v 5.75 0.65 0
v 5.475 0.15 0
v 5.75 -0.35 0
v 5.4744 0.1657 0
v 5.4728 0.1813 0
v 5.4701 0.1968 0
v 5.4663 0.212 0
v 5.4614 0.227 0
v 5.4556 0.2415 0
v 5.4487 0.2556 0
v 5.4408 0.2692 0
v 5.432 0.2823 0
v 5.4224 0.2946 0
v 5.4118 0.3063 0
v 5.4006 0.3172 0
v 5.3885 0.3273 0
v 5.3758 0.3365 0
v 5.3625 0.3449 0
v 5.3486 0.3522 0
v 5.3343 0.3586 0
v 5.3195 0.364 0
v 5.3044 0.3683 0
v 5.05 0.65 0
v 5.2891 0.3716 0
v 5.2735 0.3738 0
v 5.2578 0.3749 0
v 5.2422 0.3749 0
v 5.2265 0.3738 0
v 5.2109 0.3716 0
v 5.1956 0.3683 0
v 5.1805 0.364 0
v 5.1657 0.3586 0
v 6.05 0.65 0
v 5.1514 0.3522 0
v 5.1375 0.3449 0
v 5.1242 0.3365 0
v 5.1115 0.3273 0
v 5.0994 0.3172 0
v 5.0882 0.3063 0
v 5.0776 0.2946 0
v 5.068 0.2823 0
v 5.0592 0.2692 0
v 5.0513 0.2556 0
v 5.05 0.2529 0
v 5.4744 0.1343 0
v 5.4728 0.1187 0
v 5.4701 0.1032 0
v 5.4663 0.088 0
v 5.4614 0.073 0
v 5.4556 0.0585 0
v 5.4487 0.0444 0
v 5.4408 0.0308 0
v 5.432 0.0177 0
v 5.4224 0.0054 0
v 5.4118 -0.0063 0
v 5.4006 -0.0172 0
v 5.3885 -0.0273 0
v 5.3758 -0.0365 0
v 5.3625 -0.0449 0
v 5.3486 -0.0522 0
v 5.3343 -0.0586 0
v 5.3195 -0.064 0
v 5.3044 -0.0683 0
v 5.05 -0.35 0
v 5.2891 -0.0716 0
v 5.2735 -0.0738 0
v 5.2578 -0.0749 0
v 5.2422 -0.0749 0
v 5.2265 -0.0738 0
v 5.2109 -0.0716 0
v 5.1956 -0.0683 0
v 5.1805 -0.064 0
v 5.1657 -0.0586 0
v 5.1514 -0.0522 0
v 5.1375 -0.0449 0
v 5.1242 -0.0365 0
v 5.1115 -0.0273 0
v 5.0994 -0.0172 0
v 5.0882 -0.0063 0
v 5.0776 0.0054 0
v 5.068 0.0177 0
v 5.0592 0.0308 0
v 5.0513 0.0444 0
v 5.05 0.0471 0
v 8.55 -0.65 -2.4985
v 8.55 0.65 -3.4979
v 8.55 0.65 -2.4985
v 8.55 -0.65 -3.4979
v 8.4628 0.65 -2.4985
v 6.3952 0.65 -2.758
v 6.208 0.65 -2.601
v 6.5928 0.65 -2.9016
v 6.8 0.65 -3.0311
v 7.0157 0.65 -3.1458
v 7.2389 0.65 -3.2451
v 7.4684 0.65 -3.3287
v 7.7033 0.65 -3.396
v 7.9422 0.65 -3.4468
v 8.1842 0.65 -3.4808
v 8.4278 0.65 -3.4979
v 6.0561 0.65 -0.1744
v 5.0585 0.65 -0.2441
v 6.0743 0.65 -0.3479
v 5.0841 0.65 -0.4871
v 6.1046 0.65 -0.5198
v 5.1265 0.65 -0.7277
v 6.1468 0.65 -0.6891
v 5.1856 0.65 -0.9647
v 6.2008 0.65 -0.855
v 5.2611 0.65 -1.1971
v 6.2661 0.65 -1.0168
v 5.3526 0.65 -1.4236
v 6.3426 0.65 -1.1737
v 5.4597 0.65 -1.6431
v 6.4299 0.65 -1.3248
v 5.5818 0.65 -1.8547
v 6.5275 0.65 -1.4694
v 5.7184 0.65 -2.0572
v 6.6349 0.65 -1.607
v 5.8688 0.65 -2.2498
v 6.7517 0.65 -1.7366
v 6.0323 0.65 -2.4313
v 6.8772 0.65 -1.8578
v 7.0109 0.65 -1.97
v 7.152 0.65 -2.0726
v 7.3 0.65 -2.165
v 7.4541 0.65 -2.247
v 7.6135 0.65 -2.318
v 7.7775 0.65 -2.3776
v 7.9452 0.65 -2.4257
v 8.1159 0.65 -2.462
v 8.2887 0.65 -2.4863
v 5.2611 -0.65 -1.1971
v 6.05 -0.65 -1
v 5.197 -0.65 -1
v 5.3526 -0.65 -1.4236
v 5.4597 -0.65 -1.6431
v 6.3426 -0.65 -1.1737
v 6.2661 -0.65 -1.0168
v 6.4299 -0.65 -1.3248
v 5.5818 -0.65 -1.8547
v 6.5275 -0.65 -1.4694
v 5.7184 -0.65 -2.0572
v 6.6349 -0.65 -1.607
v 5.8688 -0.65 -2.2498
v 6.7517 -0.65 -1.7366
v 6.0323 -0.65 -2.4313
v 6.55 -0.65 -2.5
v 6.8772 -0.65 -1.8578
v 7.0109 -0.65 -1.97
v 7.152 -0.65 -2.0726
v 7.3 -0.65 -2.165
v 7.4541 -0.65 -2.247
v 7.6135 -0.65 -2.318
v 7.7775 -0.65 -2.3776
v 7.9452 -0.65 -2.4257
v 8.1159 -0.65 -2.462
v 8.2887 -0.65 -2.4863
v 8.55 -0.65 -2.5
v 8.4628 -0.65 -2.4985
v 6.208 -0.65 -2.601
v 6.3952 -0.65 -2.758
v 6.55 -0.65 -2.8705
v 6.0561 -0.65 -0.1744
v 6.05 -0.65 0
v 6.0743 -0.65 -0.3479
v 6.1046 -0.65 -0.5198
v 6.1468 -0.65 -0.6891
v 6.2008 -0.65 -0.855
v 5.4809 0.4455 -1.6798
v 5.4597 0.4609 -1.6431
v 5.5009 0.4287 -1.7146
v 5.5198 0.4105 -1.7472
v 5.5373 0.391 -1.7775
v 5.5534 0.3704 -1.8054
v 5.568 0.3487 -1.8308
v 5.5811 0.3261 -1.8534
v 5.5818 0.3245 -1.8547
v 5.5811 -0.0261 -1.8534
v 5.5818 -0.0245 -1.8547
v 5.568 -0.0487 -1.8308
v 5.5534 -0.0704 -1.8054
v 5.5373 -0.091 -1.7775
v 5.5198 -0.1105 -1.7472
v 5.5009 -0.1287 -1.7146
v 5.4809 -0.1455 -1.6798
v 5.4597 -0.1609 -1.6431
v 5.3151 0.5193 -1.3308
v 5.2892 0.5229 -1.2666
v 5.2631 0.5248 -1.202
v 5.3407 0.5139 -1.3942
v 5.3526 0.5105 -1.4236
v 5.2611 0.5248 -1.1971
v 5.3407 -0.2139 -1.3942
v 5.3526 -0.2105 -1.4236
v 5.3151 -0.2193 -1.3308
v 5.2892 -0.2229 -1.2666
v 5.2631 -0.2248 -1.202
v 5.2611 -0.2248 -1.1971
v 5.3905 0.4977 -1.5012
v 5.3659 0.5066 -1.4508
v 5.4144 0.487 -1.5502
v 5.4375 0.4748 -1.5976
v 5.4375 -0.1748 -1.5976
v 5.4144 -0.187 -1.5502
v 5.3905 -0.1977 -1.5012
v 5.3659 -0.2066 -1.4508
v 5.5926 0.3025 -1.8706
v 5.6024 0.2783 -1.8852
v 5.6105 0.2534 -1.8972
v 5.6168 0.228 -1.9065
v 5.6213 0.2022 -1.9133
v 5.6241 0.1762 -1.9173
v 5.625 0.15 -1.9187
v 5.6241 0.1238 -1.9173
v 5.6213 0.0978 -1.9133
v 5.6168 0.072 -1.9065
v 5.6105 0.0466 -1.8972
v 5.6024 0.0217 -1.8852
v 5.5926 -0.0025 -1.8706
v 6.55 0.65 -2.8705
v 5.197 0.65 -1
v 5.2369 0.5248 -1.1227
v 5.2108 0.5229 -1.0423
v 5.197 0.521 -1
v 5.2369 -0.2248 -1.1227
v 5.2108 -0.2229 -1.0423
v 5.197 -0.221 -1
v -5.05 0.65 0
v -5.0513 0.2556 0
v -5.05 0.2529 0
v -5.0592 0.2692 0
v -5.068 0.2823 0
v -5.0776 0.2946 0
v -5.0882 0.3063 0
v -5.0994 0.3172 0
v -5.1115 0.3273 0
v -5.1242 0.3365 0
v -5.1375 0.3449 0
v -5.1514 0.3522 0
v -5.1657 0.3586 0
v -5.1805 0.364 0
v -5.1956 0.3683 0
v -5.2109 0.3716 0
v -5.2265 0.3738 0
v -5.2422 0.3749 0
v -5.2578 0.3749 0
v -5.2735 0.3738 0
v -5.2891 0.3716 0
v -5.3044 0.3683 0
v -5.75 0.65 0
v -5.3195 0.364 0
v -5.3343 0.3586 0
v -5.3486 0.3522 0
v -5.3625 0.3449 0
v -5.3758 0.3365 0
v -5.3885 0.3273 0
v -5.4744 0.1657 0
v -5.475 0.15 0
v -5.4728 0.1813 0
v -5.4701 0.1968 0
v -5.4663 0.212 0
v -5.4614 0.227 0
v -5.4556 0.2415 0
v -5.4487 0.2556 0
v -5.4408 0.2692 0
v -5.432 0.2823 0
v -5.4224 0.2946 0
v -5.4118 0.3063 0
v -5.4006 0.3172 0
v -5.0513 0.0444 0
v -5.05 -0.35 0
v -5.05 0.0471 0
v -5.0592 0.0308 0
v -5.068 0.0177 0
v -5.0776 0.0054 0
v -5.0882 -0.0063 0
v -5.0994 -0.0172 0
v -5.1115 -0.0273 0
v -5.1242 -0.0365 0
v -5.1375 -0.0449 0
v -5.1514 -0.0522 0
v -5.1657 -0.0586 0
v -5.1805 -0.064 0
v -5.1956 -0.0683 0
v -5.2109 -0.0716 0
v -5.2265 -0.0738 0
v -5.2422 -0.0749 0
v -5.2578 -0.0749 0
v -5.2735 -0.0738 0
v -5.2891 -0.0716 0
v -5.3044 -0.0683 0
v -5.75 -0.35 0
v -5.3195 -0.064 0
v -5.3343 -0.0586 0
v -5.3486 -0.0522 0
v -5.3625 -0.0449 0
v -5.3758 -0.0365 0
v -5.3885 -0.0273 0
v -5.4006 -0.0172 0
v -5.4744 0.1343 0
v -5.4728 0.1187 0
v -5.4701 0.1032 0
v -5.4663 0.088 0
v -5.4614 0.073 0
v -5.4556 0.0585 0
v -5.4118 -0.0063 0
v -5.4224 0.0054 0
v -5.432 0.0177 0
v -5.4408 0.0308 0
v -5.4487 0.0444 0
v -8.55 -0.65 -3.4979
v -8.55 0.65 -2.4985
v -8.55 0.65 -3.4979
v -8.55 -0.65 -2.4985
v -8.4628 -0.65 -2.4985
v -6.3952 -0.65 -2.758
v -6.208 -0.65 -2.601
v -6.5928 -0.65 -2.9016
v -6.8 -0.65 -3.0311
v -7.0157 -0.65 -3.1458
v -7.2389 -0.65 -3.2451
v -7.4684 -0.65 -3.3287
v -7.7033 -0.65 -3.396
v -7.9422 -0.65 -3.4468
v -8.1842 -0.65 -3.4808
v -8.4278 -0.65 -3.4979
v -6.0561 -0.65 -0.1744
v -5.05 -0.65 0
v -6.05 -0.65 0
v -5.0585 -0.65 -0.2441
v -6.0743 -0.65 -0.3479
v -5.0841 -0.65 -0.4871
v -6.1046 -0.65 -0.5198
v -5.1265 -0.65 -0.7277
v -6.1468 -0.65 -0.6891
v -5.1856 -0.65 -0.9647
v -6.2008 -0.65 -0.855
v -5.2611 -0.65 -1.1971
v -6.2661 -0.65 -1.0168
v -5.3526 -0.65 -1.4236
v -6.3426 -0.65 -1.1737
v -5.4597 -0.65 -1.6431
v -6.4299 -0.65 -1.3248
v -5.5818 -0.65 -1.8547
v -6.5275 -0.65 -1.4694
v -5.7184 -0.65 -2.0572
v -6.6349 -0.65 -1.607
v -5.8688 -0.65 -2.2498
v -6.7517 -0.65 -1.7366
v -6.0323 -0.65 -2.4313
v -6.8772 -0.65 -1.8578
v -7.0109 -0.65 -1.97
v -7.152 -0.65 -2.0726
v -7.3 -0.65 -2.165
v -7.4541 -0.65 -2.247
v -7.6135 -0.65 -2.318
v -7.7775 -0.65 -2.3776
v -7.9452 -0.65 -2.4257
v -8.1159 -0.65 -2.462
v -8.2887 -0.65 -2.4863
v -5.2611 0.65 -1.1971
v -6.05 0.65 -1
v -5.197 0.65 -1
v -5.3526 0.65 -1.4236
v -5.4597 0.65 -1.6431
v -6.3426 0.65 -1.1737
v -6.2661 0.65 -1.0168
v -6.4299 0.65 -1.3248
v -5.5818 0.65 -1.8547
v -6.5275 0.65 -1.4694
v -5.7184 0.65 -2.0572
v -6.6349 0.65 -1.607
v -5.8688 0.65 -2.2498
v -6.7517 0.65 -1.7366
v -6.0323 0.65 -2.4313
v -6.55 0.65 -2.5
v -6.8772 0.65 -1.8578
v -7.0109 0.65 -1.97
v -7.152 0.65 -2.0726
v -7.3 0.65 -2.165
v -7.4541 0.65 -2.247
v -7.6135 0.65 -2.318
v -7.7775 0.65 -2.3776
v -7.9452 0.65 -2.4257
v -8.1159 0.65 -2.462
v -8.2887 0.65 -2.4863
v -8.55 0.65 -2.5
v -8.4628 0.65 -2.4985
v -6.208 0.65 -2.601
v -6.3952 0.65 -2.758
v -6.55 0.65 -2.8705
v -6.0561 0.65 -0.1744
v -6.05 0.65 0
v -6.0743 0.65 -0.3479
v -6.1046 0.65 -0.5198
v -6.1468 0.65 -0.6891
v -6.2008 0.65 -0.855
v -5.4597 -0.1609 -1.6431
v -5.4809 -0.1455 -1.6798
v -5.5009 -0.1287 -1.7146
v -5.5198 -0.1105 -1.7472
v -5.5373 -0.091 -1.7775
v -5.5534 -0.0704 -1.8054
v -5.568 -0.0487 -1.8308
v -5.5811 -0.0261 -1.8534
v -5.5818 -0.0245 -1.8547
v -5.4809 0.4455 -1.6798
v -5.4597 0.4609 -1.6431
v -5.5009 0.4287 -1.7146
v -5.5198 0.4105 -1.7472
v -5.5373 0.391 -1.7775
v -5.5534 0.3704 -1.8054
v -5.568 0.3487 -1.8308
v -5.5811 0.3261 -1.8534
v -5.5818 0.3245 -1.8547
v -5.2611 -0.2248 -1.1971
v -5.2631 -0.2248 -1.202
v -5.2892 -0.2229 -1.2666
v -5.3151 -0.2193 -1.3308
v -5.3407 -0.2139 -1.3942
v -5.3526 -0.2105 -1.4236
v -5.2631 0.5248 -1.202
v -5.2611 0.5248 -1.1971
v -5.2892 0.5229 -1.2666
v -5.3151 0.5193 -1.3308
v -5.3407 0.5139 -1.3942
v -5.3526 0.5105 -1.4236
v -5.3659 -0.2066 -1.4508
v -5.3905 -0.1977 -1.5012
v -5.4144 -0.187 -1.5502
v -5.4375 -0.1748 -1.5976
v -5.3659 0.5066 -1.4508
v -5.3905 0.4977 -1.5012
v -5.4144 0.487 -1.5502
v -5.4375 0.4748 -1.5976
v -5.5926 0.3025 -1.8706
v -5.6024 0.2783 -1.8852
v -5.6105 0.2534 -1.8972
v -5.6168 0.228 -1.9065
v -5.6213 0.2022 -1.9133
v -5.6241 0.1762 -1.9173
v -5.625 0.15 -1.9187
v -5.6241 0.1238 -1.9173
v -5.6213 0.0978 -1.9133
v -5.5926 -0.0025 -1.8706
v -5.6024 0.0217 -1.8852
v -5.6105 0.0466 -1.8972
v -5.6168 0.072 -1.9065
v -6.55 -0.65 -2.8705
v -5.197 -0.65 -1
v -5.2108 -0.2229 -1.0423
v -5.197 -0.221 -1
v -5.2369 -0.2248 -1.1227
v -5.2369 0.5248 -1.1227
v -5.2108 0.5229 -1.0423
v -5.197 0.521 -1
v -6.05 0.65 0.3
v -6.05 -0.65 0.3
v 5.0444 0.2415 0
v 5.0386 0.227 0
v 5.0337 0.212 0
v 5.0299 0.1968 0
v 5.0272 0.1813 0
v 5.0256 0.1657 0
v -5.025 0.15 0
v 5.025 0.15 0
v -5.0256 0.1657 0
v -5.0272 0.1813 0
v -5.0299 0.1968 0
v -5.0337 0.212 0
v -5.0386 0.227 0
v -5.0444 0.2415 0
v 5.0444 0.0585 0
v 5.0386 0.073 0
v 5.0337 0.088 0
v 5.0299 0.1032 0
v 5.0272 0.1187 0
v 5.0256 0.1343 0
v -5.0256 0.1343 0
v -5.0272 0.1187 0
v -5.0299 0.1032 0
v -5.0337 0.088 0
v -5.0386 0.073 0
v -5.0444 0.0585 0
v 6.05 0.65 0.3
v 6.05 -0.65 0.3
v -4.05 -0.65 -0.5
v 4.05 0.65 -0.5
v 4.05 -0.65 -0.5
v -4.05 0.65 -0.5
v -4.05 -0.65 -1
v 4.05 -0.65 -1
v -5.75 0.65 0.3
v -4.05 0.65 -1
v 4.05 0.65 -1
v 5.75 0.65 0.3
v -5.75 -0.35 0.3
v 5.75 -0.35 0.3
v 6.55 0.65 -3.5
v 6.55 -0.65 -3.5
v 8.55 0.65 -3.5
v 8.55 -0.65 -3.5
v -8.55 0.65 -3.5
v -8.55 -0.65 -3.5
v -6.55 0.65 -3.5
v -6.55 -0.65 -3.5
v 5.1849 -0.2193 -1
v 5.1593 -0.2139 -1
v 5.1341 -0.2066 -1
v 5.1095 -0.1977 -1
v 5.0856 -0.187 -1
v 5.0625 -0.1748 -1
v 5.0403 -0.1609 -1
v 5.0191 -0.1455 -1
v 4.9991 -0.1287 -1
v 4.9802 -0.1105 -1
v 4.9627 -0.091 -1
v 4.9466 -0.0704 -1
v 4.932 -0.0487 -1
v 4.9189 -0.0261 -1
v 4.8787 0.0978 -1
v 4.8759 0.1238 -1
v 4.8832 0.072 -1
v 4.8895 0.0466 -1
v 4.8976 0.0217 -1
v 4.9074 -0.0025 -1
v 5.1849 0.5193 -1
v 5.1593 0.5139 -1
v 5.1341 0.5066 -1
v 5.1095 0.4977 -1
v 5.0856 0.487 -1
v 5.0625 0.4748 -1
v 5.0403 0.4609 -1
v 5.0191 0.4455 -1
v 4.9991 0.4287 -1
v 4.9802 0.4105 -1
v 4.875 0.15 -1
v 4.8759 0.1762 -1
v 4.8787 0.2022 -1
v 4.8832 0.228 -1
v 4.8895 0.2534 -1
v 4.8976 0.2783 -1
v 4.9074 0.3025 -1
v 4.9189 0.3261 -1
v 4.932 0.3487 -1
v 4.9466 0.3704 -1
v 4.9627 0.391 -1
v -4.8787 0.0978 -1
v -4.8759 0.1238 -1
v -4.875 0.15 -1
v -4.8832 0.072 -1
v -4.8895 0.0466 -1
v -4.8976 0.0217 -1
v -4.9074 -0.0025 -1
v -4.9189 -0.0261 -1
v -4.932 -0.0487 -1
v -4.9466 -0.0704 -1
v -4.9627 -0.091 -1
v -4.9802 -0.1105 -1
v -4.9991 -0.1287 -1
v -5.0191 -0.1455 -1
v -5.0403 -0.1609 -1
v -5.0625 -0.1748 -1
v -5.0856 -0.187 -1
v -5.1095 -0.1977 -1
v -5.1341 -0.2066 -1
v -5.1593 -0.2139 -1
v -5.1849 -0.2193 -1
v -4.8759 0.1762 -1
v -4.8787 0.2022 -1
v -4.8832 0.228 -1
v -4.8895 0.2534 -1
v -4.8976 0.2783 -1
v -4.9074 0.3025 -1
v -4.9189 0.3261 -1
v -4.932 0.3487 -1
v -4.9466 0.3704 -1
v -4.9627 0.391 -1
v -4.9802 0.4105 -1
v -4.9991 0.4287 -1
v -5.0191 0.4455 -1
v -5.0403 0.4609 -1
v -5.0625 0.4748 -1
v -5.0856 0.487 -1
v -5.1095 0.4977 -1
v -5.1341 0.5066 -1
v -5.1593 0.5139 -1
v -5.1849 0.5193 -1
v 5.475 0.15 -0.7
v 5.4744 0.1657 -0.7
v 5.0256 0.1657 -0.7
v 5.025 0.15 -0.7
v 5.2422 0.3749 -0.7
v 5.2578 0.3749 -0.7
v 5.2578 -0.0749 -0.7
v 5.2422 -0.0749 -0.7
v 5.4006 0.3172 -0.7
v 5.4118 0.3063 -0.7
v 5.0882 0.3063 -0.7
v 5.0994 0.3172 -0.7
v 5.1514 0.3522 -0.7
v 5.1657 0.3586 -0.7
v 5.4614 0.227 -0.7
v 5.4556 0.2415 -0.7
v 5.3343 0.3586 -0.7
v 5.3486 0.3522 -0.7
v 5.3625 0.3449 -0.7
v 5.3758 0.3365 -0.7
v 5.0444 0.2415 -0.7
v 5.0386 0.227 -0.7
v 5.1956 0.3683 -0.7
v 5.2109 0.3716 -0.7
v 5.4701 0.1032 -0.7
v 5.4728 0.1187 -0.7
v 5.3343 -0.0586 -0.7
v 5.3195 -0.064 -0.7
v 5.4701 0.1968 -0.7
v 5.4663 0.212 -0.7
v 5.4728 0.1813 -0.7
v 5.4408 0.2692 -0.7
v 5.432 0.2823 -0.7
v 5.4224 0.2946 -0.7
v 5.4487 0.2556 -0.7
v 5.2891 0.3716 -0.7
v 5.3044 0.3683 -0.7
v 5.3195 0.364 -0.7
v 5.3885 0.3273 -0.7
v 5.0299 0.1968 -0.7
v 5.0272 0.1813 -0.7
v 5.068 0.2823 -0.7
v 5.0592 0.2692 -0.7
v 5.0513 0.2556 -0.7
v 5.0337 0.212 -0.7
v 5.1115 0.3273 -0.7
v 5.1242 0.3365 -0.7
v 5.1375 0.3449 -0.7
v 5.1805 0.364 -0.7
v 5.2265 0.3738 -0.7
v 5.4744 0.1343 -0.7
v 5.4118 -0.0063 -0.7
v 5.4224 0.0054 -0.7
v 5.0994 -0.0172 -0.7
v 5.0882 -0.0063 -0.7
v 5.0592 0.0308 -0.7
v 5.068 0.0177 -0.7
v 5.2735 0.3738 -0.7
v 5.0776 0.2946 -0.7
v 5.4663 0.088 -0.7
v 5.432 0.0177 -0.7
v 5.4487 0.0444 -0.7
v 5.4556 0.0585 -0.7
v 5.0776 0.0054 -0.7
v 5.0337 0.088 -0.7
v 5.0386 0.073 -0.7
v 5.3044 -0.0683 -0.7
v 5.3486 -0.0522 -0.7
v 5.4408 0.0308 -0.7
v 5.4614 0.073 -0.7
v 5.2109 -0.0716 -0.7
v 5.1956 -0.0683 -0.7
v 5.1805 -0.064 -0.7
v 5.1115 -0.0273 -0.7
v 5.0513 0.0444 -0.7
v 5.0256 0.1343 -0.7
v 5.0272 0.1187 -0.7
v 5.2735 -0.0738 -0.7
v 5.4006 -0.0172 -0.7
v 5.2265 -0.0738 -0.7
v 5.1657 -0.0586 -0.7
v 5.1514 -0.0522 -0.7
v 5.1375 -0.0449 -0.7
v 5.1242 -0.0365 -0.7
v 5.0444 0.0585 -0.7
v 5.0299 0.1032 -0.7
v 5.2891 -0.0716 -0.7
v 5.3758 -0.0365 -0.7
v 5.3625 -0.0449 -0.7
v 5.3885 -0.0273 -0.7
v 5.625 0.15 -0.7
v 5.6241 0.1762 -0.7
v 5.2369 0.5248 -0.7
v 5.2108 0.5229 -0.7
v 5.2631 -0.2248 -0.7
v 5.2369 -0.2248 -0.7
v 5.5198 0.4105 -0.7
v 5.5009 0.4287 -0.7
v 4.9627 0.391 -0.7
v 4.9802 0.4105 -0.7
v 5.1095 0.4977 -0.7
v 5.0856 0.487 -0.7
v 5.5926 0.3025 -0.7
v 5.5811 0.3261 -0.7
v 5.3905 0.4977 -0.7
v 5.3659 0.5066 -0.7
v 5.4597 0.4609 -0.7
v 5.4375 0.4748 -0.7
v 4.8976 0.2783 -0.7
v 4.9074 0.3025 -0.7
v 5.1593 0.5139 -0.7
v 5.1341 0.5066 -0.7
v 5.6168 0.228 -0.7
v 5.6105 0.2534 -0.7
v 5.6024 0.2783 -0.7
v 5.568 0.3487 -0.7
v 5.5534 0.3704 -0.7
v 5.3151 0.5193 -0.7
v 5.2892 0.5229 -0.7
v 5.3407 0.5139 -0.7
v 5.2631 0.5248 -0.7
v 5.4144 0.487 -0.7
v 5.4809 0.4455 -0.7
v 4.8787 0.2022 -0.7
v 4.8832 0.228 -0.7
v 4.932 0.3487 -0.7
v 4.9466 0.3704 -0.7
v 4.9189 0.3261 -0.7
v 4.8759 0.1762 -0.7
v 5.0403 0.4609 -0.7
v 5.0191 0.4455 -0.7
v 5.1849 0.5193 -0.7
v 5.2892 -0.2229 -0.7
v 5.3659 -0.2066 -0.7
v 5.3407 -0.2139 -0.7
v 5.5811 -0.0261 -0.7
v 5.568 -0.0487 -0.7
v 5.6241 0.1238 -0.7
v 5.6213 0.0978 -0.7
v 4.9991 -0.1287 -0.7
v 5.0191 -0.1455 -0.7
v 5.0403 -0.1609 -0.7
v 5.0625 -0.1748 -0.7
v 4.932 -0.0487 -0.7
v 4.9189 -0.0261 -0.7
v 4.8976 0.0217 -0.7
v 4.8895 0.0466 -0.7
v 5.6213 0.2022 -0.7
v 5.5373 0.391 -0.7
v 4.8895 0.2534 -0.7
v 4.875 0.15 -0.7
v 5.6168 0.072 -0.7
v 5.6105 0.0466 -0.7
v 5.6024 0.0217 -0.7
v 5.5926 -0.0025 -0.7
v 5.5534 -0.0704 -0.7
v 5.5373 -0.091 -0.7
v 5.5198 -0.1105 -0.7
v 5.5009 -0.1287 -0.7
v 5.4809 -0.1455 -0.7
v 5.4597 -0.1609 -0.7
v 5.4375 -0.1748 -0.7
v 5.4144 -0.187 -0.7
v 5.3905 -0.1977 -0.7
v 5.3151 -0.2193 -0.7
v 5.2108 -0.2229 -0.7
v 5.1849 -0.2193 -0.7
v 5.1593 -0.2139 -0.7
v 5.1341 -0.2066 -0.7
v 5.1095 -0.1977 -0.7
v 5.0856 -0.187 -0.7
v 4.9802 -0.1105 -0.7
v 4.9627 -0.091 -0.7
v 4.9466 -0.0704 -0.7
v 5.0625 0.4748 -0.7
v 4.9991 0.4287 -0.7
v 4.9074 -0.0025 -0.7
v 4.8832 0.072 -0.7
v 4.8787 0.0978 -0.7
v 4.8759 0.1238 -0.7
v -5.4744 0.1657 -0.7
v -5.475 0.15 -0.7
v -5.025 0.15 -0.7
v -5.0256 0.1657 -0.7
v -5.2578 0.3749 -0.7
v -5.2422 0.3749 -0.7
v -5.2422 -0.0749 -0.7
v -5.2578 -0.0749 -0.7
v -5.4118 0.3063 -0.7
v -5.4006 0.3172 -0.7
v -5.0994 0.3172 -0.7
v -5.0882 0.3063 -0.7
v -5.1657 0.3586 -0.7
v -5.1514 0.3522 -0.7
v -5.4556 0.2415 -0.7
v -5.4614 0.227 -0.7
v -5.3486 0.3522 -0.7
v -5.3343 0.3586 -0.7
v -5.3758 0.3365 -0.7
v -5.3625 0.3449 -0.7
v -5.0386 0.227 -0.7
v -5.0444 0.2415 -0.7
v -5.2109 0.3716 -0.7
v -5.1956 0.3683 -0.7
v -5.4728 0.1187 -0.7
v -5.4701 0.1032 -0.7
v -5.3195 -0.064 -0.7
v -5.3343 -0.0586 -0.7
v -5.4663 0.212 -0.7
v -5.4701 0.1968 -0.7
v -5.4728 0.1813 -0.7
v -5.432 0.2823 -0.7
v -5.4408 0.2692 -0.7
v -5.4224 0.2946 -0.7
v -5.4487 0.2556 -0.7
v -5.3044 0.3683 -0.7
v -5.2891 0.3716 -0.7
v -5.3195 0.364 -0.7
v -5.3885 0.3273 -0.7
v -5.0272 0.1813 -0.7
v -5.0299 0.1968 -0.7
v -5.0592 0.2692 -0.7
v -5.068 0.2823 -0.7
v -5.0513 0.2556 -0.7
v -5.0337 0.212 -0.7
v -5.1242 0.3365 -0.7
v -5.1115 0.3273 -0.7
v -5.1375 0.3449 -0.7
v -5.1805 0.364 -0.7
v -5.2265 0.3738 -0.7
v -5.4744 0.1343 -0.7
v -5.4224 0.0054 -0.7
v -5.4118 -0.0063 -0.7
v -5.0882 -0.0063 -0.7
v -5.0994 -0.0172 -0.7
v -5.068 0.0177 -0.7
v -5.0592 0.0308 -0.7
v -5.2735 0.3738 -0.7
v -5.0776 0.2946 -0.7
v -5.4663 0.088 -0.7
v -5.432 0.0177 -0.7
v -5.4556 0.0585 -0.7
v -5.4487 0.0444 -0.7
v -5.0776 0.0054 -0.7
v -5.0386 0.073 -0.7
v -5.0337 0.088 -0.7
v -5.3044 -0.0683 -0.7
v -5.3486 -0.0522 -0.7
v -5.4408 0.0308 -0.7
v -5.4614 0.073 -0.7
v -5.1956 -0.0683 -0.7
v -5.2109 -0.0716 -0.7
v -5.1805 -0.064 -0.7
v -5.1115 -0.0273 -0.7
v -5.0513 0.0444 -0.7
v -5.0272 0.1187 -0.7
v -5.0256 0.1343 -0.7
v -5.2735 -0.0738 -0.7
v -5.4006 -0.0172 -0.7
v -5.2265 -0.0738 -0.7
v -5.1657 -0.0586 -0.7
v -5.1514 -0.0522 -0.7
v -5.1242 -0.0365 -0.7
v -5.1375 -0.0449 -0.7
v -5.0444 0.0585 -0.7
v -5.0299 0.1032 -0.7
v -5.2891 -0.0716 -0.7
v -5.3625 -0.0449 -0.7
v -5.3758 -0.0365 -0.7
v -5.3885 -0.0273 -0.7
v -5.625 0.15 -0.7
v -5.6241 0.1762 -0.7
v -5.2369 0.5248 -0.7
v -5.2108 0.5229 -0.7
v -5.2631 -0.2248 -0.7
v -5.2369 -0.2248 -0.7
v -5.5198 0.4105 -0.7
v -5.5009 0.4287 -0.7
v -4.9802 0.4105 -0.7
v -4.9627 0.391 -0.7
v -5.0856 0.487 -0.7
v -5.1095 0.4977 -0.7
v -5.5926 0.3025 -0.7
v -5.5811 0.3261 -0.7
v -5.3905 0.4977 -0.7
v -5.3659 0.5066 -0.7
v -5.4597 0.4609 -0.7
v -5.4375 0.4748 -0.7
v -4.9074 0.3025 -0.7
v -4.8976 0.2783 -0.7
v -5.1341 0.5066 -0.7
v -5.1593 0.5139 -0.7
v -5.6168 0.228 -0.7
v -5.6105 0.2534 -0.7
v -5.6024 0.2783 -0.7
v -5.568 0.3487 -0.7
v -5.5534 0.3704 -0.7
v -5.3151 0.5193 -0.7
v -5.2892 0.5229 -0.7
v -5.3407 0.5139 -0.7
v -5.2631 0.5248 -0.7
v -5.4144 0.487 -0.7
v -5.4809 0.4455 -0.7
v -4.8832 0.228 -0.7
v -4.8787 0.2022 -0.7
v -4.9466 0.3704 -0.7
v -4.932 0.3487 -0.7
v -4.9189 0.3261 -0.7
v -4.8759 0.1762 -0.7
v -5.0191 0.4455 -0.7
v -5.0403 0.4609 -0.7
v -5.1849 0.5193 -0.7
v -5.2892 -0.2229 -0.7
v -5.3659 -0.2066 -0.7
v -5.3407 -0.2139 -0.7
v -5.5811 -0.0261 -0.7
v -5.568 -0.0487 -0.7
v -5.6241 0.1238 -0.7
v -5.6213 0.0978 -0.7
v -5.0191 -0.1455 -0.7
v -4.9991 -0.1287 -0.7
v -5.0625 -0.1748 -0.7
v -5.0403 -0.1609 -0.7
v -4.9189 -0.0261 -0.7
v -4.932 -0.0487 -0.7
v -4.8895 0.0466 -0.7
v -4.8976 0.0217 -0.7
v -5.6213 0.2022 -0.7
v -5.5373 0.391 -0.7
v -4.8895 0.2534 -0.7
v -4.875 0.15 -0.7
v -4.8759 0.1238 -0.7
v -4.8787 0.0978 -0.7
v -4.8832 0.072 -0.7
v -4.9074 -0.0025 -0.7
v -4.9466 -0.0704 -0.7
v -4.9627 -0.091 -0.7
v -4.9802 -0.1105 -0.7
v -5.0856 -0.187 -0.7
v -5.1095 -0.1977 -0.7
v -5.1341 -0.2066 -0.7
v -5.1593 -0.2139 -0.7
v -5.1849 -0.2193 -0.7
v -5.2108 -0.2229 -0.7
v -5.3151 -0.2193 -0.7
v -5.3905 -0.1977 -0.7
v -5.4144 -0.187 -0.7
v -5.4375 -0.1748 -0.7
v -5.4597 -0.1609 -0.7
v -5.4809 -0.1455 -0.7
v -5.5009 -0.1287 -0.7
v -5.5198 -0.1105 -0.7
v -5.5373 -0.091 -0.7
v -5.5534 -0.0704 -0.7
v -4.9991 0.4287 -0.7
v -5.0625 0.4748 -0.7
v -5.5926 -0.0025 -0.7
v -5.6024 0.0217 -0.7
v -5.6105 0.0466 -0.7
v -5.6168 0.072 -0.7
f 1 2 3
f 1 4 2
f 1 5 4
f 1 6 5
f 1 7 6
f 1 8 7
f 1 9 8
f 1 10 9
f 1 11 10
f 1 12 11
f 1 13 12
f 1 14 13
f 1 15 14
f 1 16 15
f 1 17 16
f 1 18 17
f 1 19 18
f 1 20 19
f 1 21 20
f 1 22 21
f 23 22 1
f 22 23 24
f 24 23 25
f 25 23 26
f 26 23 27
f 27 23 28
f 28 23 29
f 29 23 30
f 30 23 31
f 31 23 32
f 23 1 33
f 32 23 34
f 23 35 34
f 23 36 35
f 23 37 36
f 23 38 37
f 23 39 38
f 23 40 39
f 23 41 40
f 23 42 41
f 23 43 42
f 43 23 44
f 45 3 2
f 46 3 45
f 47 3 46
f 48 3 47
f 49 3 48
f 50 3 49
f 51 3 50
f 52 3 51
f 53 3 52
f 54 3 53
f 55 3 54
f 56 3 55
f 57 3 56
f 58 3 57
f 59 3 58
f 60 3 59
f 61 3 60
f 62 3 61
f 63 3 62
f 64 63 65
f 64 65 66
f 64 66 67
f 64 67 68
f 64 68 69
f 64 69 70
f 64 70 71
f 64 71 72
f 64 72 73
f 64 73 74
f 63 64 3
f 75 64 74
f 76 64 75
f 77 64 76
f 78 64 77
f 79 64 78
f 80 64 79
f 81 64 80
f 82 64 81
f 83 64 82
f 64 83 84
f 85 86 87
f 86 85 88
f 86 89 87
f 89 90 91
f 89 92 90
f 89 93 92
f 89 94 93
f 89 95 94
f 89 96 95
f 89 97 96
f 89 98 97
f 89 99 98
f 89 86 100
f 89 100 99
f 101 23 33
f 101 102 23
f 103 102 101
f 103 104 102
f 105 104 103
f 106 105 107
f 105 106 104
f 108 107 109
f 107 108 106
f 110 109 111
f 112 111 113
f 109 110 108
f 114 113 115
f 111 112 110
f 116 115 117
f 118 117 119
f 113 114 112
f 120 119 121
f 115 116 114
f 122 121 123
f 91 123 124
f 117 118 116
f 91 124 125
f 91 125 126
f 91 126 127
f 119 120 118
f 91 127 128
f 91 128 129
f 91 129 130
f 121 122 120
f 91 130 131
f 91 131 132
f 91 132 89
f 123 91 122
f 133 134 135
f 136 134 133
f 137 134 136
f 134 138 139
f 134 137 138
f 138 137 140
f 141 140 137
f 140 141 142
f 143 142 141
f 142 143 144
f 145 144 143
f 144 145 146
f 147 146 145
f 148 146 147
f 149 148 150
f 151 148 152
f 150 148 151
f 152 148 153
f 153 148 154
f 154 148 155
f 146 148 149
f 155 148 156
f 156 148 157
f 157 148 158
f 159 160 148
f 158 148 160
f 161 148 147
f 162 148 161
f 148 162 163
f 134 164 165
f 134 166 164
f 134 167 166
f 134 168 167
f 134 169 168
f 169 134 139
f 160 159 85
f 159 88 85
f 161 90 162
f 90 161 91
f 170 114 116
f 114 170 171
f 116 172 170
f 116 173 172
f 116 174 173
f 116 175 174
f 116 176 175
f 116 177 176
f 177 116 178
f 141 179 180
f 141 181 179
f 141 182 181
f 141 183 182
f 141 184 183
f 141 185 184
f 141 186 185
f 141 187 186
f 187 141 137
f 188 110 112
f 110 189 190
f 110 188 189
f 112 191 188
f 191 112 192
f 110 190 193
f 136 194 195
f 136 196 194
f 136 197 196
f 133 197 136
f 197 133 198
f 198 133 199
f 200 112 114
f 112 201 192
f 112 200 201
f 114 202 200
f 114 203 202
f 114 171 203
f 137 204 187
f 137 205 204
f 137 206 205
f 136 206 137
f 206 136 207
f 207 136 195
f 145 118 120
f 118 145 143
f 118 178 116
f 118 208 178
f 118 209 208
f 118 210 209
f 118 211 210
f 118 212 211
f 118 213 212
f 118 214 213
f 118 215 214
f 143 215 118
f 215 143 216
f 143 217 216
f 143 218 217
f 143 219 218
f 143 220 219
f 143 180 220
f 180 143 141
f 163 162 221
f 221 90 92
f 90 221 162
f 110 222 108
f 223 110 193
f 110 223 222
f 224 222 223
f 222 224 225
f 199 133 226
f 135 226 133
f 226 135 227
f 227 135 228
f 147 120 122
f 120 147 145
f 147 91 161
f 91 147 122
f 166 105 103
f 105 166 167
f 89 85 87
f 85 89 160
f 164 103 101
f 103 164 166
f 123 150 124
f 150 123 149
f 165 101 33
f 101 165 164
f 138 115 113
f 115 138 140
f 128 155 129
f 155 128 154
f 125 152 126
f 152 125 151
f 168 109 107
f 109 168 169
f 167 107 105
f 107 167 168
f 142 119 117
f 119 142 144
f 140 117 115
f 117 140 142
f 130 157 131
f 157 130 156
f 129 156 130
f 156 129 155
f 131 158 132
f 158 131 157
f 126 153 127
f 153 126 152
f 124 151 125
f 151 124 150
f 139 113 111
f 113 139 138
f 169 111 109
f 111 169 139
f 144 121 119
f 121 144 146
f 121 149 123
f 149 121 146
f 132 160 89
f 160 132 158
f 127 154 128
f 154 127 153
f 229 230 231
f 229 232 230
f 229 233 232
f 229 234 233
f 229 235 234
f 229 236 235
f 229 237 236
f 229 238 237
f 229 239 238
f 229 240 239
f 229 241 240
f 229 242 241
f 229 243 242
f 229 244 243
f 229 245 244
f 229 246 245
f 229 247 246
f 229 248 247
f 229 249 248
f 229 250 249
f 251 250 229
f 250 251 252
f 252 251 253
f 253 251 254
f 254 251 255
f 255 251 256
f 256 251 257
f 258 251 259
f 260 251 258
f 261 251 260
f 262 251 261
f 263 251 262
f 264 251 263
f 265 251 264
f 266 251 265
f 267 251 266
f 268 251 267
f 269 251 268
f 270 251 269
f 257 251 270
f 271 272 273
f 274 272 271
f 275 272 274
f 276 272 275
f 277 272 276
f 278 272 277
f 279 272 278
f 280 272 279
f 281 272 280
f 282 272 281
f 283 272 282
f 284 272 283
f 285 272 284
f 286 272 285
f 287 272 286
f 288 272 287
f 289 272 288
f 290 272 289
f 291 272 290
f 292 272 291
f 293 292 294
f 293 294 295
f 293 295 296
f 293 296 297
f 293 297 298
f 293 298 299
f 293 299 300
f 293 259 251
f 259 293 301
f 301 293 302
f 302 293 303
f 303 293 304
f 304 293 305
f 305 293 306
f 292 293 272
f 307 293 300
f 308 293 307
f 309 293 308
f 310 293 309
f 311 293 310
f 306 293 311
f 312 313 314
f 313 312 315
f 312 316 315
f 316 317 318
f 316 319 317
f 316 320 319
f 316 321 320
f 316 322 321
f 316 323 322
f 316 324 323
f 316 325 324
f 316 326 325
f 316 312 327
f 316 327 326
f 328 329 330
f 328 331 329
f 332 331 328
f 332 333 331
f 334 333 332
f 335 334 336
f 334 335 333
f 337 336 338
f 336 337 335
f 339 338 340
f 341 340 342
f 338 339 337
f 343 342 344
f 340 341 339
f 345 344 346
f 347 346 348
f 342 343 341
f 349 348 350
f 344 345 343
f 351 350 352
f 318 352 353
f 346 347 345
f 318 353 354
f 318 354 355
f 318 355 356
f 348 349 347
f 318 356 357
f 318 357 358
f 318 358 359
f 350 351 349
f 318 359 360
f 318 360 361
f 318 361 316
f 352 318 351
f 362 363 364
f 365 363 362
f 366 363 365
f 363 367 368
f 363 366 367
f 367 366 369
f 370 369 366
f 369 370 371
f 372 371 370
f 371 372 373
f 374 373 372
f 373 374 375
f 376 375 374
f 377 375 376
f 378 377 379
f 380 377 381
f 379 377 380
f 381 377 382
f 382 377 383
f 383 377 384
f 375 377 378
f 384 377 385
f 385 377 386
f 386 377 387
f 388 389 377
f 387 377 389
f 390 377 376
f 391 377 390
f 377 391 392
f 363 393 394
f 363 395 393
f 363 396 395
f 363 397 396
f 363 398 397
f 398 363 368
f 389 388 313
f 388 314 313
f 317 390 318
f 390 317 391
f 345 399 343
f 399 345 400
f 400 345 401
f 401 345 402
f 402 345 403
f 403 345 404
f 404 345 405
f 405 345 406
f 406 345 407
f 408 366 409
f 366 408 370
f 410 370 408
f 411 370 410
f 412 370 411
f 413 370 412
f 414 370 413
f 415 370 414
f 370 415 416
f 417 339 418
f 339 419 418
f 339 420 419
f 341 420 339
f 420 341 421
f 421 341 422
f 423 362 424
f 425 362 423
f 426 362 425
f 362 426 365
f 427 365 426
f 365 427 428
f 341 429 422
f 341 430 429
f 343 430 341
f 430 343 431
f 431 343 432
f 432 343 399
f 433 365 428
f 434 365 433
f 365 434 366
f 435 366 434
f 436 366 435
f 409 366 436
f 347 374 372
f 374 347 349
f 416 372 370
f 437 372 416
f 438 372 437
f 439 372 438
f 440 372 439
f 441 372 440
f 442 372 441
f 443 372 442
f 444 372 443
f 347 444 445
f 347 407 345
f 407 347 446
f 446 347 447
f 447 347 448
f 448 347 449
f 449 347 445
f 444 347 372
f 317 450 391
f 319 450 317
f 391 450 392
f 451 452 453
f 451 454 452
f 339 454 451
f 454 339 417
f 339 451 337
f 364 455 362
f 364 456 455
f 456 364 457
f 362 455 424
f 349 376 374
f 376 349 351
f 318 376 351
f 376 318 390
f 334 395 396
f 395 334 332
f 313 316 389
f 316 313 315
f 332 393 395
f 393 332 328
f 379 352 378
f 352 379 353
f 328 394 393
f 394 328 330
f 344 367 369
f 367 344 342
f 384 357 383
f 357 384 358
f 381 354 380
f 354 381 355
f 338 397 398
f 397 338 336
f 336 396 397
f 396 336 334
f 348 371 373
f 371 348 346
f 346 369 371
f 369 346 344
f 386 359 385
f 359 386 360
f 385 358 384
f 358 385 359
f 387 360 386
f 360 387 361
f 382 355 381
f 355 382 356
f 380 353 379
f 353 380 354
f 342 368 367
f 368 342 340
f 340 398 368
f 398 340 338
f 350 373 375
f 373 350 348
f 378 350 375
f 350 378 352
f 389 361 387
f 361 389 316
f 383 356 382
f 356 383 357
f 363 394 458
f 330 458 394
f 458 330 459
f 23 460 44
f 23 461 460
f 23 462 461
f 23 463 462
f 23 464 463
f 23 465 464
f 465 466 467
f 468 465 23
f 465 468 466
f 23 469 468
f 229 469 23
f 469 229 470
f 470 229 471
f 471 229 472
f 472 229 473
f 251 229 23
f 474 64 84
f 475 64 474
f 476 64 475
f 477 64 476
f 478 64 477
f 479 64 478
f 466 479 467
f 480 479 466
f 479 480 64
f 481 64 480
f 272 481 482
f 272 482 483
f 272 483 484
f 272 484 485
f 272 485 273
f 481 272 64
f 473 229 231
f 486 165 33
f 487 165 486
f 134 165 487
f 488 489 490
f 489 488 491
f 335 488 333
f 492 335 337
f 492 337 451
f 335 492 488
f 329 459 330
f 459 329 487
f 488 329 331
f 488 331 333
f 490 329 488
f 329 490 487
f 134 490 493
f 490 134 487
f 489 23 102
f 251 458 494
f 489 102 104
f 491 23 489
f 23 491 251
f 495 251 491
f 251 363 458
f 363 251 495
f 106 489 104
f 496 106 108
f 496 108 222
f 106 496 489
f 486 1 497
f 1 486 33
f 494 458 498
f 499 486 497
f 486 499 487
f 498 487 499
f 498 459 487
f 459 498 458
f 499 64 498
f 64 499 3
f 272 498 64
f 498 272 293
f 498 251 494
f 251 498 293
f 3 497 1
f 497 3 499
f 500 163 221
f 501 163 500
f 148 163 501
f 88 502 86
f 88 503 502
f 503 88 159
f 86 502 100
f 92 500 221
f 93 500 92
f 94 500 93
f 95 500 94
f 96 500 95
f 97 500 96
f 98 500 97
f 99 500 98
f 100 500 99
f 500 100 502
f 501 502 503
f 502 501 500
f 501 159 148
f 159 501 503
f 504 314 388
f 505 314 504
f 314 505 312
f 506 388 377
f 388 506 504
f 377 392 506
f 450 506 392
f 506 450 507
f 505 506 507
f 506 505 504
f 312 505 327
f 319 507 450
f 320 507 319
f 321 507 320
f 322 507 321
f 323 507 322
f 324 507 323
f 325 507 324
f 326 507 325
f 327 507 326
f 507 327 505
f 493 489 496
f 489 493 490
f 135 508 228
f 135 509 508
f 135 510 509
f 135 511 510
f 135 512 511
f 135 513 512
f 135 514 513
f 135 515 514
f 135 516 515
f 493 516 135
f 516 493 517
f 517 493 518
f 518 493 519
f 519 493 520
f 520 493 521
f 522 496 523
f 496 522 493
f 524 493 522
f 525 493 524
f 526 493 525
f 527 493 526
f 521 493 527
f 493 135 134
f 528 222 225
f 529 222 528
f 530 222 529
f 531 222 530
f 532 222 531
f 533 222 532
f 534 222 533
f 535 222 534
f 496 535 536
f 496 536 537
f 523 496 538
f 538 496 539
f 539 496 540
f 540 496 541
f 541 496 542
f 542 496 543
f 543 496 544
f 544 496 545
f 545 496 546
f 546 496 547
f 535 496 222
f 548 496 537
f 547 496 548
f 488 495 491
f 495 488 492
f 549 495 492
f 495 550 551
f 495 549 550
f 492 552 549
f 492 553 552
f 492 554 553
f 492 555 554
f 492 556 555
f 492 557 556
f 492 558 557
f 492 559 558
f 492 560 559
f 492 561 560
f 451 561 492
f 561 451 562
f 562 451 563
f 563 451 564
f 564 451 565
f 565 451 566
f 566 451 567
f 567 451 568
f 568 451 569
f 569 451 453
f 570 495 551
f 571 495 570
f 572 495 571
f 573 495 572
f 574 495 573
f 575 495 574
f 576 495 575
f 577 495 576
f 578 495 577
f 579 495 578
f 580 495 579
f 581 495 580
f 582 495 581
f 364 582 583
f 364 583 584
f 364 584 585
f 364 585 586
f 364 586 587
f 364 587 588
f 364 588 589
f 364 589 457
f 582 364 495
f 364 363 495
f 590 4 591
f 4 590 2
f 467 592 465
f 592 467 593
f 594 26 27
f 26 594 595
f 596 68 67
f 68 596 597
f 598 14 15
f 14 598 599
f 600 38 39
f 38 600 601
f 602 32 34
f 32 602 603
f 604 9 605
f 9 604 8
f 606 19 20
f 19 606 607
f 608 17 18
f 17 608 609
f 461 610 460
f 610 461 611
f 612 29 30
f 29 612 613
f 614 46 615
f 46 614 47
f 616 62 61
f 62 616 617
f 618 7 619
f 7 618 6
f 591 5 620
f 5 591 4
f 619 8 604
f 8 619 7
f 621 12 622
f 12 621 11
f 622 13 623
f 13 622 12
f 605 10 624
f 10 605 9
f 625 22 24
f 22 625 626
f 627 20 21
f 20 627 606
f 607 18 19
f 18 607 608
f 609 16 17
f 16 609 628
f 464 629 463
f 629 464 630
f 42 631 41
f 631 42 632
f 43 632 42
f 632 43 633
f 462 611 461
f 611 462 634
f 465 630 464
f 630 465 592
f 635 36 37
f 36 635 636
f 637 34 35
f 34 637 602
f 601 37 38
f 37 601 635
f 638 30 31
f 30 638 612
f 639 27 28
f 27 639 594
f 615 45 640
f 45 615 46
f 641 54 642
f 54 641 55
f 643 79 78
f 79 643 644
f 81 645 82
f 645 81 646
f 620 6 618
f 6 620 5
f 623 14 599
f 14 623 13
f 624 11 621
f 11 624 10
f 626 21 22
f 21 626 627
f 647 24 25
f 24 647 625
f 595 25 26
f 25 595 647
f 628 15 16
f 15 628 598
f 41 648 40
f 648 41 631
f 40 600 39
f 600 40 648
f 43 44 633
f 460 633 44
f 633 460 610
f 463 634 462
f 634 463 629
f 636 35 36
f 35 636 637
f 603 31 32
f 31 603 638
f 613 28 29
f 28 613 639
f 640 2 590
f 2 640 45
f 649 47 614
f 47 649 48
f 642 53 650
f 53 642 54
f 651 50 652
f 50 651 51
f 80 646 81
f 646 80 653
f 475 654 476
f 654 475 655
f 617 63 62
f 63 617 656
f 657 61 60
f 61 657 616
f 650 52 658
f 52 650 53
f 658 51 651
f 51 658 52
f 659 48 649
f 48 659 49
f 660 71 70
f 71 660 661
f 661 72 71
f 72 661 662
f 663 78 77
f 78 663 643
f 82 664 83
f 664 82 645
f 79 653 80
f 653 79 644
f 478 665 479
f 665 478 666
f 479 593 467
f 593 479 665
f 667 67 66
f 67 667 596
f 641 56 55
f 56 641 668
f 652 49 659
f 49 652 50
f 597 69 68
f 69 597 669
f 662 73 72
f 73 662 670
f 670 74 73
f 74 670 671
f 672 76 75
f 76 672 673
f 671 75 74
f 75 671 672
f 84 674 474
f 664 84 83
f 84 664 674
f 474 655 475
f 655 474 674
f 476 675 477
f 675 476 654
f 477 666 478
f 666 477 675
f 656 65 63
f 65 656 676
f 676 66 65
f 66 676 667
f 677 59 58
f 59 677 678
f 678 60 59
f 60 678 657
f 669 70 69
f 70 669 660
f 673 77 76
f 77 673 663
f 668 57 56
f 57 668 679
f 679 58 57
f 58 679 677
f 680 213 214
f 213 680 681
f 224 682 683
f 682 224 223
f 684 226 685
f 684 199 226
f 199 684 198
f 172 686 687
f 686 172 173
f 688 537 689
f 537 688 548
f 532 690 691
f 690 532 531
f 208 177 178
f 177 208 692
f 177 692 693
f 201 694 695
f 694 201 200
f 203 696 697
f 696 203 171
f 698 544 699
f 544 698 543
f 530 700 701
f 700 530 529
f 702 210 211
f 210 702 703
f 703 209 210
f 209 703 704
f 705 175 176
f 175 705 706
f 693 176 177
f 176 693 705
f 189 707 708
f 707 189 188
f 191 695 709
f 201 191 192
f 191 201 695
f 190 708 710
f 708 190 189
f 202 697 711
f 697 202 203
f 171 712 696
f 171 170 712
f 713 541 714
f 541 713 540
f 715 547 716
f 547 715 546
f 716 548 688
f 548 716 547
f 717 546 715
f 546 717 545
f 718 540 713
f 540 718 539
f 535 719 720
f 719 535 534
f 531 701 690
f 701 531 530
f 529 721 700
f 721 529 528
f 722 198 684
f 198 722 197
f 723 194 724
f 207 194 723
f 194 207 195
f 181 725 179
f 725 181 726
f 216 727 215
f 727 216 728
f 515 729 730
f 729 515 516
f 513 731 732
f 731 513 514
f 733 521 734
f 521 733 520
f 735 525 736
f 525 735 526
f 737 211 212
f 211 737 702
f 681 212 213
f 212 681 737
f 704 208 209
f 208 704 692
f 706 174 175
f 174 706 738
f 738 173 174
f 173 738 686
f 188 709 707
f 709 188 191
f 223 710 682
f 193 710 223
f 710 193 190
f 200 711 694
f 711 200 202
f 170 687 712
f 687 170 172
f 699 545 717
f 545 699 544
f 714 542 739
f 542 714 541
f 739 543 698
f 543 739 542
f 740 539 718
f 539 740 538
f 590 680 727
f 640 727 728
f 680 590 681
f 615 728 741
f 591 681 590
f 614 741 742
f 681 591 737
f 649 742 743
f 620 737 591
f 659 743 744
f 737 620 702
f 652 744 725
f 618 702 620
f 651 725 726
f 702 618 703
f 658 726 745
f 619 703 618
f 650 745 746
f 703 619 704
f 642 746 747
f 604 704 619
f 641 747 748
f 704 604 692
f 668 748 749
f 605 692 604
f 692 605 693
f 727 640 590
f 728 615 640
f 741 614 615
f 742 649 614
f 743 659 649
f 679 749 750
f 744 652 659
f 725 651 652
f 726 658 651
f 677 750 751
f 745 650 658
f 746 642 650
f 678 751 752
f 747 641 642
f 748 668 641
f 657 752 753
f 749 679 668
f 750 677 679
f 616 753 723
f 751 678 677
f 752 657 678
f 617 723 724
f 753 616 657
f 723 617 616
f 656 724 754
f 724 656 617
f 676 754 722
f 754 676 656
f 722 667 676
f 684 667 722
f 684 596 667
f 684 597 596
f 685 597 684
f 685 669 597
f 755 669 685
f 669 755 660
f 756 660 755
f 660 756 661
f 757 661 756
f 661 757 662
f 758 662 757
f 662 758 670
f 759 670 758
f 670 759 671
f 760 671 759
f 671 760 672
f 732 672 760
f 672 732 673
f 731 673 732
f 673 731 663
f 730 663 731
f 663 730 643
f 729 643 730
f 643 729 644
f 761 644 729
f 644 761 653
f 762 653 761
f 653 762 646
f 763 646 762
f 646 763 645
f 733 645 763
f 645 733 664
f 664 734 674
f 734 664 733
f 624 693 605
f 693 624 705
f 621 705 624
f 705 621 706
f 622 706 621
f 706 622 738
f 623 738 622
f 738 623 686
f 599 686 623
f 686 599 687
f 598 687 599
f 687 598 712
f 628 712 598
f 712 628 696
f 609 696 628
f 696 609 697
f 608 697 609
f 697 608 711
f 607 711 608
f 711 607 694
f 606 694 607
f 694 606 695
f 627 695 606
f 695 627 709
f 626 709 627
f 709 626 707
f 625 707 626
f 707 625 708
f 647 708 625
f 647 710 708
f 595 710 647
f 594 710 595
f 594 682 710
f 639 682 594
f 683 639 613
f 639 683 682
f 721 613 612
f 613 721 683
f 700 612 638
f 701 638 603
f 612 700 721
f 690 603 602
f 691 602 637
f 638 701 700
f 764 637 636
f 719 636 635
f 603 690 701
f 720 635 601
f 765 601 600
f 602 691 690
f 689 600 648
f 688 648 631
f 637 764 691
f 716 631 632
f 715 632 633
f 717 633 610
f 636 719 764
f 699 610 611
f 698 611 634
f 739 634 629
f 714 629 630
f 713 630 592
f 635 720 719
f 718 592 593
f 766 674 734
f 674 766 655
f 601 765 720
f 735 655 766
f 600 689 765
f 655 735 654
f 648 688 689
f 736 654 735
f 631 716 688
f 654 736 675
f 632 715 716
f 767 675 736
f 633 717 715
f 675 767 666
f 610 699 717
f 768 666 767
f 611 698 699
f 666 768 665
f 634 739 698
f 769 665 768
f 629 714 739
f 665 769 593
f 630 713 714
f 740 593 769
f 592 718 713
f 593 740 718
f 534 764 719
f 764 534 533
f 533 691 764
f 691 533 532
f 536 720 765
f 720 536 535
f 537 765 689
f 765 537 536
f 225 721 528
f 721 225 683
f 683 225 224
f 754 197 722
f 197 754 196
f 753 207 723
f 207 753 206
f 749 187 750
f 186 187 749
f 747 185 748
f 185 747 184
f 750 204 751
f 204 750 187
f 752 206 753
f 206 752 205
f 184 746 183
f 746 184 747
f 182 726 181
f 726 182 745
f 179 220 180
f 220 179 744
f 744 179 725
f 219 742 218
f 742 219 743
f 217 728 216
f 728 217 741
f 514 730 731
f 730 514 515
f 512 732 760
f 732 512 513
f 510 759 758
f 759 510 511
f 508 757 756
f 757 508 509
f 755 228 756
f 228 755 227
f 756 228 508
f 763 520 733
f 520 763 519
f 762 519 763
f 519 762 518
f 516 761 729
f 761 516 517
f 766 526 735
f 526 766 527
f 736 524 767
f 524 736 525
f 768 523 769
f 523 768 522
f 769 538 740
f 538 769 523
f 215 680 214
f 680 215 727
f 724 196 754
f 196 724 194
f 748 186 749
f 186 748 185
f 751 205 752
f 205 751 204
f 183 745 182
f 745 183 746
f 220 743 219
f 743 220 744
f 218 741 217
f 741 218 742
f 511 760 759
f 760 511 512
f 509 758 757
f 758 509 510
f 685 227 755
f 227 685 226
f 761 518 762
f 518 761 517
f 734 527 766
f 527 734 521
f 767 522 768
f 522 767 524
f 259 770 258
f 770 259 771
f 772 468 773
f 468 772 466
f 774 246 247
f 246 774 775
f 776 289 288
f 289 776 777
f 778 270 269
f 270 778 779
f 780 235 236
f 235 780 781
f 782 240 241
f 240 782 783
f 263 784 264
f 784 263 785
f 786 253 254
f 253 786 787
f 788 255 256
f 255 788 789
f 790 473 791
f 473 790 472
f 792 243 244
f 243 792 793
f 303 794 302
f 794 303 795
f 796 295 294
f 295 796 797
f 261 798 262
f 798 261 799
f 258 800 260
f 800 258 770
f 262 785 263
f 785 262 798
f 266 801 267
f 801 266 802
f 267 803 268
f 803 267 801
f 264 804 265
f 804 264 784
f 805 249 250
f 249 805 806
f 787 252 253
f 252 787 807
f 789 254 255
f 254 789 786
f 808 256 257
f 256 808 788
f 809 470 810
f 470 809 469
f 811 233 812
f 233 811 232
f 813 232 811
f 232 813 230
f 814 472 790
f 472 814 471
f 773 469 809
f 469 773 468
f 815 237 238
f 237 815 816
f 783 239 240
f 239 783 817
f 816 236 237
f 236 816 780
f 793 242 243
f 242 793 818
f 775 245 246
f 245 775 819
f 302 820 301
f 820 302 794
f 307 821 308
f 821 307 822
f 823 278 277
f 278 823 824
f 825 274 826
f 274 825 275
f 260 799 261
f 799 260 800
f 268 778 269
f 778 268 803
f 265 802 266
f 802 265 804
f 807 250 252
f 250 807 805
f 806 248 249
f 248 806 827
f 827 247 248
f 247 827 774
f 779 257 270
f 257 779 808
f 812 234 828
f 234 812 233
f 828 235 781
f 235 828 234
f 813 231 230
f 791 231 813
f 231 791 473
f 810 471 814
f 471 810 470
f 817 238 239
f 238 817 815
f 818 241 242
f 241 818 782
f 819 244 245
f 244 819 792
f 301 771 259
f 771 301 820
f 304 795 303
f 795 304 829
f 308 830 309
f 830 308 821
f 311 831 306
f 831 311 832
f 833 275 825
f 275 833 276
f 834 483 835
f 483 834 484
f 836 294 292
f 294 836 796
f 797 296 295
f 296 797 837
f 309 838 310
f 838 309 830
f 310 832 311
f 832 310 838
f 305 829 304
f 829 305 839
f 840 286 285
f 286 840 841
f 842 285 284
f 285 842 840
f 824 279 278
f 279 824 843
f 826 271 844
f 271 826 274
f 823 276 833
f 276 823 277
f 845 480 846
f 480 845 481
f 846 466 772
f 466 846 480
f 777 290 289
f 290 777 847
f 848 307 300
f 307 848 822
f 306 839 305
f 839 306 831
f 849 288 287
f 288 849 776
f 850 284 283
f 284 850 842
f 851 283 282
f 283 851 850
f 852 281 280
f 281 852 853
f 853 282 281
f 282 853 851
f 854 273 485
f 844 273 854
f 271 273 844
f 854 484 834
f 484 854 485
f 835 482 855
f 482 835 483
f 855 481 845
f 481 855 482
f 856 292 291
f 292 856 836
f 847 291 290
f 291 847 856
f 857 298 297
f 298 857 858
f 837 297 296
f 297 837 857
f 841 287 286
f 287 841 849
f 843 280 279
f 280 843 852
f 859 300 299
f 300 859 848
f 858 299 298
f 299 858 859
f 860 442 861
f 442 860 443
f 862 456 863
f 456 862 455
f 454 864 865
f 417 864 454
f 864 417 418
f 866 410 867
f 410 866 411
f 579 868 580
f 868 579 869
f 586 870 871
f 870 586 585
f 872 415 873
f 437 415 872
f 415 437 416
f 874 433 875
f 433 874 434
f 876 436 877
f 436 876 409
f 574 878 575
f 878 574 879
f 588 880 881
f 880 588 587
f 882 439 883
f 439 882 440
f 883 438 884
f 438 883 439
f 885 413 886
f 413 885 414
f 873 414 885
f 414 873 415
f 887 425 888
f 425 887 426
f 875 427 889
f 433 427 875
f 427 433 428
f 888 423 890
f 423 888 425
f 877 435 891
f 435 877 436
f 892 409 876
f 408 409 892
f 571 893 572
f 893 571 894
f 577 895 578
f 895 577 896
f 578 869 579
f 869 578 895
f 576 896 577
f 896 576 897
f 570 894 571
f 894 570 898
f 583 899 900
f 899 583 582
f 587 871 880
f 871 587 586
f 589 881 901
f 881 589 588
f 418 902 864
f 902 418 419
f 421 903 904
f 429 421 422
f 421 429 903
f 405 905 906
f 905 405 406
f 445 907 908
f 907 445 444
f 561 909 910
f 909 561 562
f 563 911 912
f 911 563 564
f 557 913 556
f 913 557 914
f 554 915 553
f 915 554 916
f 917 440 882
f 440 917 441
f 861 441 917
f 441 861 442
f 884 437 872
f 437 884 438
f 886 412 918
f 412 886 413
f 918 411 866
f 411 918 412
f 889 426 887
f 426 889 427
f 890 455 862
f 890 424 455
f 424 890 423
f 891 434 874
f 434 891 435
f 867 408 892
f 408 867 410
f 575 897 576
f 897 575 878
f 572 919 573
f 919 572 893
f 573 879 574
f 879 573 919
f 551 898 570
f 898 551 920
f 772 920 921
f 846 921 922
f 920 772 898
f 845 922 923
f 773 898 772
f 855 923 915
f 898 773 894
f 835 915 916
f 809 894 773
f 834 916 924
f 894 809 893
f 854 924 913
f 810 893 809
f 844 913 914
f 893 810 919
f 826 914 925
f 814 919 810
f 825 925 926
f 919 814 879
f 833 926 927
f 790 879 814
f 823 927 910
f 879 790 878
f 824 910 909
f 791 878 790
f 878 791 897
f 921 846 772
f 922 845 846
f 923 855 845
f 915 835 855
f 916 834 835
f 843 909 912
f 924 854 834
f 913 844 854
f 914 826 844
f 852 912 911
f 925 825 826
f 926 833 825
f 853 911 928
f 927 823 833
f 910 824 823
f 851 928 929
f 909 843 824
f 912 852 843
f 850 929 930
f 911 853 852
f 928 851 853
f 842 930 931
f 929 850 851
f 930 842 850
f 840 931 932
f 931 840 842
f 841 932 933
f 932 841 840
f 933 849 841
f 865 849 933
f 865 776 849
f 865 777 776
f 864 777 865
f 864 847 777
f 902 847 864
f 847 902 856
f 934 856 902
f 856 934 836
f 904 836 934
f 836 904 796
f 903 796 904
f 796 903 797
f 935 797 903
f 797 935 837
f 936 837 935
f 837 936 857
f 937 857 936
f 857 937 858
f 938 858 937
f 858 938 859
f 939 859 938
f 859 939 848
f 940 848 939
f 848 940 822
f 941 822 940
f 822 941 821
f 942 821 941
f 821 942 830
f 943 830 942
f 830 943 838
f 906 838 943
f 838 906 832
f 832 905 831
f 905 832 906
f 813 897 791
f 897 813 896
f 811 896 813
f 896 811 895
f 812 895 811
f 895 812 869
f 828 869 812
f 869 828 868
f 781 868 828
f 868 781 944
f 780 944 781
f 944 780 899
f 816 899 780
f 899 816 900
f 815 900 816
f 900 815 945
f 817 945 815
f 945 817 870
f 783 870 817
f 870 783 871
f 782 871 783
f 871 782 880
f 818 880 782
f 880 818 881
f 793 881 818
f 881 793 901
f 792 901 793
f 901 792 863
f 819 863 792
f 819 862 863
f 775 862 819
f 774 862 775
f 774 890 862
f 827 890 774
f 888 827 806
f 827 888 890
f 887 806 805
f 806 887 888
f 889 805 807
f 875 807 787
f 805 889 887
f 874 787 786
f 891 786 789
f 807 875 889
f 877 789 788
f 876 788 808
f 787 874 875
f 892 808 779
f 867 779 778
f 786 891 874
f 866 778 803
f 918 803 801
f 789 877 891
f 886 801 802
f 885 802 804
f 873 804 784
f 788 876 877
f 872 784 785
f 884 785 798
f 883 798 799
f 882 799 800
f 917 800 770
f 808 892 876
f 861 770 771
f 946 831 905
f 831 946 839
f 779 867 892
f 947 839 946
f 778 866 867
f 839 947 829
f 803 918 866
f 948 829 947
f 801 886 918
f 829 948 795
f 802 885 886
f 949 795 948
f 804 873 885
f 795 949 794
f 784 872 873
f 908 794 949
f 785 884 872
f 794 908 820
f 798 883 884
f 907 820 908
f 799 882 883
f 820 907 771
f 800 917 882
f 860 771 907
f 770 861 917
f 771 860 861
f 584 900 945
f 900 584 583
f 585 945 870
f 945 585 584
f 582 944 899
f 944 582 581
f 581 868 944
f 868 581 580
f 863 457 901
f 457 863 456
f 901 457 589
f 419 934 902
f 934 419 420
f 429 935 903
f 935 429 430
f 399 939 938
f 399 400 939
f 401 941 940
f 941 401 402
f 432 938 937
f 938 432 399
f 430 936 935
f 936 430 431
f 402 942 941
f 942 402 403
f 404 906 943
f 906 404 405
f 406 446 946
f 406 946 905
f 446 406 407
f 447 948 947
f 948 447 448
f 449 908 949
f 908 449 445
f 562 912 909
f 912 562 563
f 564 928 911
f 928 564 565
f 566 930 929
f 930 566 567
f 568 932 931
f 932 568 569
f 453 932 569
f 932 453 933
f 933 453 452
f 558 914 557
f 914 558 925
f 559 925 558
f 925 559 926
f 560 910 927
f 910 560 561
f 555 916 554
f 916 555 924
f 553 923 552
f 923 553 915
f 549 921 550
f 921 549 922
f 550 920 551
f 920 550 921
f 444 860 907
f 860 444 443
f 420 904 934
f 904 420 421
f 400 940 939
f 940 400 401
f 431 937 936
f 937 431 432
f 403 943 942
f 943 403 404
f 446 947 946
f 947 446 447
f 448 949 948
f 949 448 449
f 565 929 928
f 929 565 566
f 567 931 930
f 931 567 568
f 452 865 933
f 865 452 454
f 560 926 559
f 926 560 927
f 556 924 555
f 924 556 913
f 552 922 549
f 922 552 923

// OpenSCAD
$fn=90;
// maten in centimeter
breedte_vlak=11.5;
breedte_randje=0.3;
breedte_overall=breedte_vlak+2*breedte_randje;
breedte_hoek=1.0;
breedte_ondervlak=breedte_vlak-2*breedte_hoek;
diepte_vlak=1.0;
diepte_randje=0.3;
diepte_overall=diepte_vlak+diepte_randje;
hoogte_vlak=4.0;
hoogte_randje=0.3;
hoogte_overall=hoogte_vlak+hoogte_randje;
hoogte_ondervlak=3.5;
dikte_vlak=hoogte_vlak-hoogte_ondervlak;
boog_straal_boven=hoogte_ondervlak;
boog_straal_onder=hoogte_ondervlak-1;
boog1_x=breedte_overall/2+boog_straal_boven-1;
boog1_y=hoogte_randje;
boog1_z=-boog_straal_boven-dikte_vlak;
boog2_x=-breedte_overall/2-boog_straal_boven+1;
boog2_y=boog1_y;
boog2_z=boog1_z;
voetstuk_breedte=2.0;
voetstuk_diepte=diepte_overall;
voetstuk_hoogte=1.0;
voetstuk1_x=boog1_x-voetstuk_breedte;
voetstuk1_y=boog_straal_boven-voetstuk_hoogte;
voetstuk1_z=-boog_straal_boven;
voetstuk2_x=voetstuk_breedte;
voetstuk2_y=voetstuk1_y;
bovenvoetstuk1_x=breedte_overall/2-voetstuk_breedte;
bovenvoetstuk1_y=-diepte_overall/2;
bovenvoetstuk1_z=-voetstuk_hoogte;

module vlak() {
    translate([-breedte_overall/2,-diepte_overall/2,-dikte_vlak]) {
        cube([breedte_overall, diepte_overall, dikte_vlak], center=false);
    }    
}

module front_rand() {
    translate([-breedte_overall/2,-diepte_overall/2,0]) {
        cube([breedte_overall, diepte_randje, hoogte_randje], center=false);
    }    
}

module zij_rand_links() {
    translate([-breedte_overall/2,-diepte_overall/2,0]) {
        cube([breedte_randje, diepte_overall, hoogte_randje], center=false);
    }    
}

module zij_rand_rechts() {
    mirror() zij_rand_links(); 
}

// snippet    translate([0,0,0]) rotate(180,[1,0,1]) 

module boog_outer() {
    translate([0,0,0]) // rotate(180,[1,0,1]) 
        linear_extrude(diepte_overall) intersection(){square(boog_straal_boven);circle(boog_straal_boven);}
}

module boog_inner() {
    translate([0,0,0]) // rotate(180,[1,0,1]) 
        linear_extrude(diepte_overall) intersection(){square(boog_straal_onder);circle(boog_straal_onder);}
}

module boog1() {
    translate([boog1_x,diepte_overall/2,0]) rotate(-180,[0,1,0]) rotate(90,[1,0,0]) difference() {
        boog_outer();
        boog_inner();
    }
}
        
module boog2() {
    translate([boog2_x,-diepte_overall/2,0])   rotate(-90,[1,0,0]) difference() {
        boog_outer();
        boog_inner();
    }
}

module voet1() {
    translate([voetstuk1_x,-voetstuk_diepte/2,voetstuk1_z]) {
        cube([voetstuk_breedte, voetstuk_diepte, voetstuk_hoogte], center=false);
    }    
}

module voet2() {
    mirror() voet1();    
}

module bovenvoet1() {
    translate([bovenvoetstuk1_x,bovenvoetstuk1_y,bovenvoetstuk1_z]) {
        cube([voetstuk_breedte, voetstuk_diepte, voetstuk_hoogte], center=false);
    }    
}

module bovenvoet2() {
    mirror() bovenvoet1();    
}

module boorgat1() {
    union() {
        translate([breedte_vlak/2-0.5,diepte_randje/2,-1]) {
            cylinder(h=4,d=0.45, center=false);
        } 
        translate([breedte_vlak/2-0.5,diepte_randje/2,-2.7]) {
            cylinder(h=2,d=0.75, center=false);
        } 
    }
}

module boorgat2() { mirror() boorgat1(); }

module voetstuk() {
    union() {
        vlak();
        front_rand();
        zij_rand_links();
        zij_rand_rechts();
        boog1();
        boog2();
        voet1();
        voet2();
        bovenvoet1();
        bovenvoet2();
    }
}

difference() {
    voetstuk();
    boorgat1();
    boorgat2();
}
